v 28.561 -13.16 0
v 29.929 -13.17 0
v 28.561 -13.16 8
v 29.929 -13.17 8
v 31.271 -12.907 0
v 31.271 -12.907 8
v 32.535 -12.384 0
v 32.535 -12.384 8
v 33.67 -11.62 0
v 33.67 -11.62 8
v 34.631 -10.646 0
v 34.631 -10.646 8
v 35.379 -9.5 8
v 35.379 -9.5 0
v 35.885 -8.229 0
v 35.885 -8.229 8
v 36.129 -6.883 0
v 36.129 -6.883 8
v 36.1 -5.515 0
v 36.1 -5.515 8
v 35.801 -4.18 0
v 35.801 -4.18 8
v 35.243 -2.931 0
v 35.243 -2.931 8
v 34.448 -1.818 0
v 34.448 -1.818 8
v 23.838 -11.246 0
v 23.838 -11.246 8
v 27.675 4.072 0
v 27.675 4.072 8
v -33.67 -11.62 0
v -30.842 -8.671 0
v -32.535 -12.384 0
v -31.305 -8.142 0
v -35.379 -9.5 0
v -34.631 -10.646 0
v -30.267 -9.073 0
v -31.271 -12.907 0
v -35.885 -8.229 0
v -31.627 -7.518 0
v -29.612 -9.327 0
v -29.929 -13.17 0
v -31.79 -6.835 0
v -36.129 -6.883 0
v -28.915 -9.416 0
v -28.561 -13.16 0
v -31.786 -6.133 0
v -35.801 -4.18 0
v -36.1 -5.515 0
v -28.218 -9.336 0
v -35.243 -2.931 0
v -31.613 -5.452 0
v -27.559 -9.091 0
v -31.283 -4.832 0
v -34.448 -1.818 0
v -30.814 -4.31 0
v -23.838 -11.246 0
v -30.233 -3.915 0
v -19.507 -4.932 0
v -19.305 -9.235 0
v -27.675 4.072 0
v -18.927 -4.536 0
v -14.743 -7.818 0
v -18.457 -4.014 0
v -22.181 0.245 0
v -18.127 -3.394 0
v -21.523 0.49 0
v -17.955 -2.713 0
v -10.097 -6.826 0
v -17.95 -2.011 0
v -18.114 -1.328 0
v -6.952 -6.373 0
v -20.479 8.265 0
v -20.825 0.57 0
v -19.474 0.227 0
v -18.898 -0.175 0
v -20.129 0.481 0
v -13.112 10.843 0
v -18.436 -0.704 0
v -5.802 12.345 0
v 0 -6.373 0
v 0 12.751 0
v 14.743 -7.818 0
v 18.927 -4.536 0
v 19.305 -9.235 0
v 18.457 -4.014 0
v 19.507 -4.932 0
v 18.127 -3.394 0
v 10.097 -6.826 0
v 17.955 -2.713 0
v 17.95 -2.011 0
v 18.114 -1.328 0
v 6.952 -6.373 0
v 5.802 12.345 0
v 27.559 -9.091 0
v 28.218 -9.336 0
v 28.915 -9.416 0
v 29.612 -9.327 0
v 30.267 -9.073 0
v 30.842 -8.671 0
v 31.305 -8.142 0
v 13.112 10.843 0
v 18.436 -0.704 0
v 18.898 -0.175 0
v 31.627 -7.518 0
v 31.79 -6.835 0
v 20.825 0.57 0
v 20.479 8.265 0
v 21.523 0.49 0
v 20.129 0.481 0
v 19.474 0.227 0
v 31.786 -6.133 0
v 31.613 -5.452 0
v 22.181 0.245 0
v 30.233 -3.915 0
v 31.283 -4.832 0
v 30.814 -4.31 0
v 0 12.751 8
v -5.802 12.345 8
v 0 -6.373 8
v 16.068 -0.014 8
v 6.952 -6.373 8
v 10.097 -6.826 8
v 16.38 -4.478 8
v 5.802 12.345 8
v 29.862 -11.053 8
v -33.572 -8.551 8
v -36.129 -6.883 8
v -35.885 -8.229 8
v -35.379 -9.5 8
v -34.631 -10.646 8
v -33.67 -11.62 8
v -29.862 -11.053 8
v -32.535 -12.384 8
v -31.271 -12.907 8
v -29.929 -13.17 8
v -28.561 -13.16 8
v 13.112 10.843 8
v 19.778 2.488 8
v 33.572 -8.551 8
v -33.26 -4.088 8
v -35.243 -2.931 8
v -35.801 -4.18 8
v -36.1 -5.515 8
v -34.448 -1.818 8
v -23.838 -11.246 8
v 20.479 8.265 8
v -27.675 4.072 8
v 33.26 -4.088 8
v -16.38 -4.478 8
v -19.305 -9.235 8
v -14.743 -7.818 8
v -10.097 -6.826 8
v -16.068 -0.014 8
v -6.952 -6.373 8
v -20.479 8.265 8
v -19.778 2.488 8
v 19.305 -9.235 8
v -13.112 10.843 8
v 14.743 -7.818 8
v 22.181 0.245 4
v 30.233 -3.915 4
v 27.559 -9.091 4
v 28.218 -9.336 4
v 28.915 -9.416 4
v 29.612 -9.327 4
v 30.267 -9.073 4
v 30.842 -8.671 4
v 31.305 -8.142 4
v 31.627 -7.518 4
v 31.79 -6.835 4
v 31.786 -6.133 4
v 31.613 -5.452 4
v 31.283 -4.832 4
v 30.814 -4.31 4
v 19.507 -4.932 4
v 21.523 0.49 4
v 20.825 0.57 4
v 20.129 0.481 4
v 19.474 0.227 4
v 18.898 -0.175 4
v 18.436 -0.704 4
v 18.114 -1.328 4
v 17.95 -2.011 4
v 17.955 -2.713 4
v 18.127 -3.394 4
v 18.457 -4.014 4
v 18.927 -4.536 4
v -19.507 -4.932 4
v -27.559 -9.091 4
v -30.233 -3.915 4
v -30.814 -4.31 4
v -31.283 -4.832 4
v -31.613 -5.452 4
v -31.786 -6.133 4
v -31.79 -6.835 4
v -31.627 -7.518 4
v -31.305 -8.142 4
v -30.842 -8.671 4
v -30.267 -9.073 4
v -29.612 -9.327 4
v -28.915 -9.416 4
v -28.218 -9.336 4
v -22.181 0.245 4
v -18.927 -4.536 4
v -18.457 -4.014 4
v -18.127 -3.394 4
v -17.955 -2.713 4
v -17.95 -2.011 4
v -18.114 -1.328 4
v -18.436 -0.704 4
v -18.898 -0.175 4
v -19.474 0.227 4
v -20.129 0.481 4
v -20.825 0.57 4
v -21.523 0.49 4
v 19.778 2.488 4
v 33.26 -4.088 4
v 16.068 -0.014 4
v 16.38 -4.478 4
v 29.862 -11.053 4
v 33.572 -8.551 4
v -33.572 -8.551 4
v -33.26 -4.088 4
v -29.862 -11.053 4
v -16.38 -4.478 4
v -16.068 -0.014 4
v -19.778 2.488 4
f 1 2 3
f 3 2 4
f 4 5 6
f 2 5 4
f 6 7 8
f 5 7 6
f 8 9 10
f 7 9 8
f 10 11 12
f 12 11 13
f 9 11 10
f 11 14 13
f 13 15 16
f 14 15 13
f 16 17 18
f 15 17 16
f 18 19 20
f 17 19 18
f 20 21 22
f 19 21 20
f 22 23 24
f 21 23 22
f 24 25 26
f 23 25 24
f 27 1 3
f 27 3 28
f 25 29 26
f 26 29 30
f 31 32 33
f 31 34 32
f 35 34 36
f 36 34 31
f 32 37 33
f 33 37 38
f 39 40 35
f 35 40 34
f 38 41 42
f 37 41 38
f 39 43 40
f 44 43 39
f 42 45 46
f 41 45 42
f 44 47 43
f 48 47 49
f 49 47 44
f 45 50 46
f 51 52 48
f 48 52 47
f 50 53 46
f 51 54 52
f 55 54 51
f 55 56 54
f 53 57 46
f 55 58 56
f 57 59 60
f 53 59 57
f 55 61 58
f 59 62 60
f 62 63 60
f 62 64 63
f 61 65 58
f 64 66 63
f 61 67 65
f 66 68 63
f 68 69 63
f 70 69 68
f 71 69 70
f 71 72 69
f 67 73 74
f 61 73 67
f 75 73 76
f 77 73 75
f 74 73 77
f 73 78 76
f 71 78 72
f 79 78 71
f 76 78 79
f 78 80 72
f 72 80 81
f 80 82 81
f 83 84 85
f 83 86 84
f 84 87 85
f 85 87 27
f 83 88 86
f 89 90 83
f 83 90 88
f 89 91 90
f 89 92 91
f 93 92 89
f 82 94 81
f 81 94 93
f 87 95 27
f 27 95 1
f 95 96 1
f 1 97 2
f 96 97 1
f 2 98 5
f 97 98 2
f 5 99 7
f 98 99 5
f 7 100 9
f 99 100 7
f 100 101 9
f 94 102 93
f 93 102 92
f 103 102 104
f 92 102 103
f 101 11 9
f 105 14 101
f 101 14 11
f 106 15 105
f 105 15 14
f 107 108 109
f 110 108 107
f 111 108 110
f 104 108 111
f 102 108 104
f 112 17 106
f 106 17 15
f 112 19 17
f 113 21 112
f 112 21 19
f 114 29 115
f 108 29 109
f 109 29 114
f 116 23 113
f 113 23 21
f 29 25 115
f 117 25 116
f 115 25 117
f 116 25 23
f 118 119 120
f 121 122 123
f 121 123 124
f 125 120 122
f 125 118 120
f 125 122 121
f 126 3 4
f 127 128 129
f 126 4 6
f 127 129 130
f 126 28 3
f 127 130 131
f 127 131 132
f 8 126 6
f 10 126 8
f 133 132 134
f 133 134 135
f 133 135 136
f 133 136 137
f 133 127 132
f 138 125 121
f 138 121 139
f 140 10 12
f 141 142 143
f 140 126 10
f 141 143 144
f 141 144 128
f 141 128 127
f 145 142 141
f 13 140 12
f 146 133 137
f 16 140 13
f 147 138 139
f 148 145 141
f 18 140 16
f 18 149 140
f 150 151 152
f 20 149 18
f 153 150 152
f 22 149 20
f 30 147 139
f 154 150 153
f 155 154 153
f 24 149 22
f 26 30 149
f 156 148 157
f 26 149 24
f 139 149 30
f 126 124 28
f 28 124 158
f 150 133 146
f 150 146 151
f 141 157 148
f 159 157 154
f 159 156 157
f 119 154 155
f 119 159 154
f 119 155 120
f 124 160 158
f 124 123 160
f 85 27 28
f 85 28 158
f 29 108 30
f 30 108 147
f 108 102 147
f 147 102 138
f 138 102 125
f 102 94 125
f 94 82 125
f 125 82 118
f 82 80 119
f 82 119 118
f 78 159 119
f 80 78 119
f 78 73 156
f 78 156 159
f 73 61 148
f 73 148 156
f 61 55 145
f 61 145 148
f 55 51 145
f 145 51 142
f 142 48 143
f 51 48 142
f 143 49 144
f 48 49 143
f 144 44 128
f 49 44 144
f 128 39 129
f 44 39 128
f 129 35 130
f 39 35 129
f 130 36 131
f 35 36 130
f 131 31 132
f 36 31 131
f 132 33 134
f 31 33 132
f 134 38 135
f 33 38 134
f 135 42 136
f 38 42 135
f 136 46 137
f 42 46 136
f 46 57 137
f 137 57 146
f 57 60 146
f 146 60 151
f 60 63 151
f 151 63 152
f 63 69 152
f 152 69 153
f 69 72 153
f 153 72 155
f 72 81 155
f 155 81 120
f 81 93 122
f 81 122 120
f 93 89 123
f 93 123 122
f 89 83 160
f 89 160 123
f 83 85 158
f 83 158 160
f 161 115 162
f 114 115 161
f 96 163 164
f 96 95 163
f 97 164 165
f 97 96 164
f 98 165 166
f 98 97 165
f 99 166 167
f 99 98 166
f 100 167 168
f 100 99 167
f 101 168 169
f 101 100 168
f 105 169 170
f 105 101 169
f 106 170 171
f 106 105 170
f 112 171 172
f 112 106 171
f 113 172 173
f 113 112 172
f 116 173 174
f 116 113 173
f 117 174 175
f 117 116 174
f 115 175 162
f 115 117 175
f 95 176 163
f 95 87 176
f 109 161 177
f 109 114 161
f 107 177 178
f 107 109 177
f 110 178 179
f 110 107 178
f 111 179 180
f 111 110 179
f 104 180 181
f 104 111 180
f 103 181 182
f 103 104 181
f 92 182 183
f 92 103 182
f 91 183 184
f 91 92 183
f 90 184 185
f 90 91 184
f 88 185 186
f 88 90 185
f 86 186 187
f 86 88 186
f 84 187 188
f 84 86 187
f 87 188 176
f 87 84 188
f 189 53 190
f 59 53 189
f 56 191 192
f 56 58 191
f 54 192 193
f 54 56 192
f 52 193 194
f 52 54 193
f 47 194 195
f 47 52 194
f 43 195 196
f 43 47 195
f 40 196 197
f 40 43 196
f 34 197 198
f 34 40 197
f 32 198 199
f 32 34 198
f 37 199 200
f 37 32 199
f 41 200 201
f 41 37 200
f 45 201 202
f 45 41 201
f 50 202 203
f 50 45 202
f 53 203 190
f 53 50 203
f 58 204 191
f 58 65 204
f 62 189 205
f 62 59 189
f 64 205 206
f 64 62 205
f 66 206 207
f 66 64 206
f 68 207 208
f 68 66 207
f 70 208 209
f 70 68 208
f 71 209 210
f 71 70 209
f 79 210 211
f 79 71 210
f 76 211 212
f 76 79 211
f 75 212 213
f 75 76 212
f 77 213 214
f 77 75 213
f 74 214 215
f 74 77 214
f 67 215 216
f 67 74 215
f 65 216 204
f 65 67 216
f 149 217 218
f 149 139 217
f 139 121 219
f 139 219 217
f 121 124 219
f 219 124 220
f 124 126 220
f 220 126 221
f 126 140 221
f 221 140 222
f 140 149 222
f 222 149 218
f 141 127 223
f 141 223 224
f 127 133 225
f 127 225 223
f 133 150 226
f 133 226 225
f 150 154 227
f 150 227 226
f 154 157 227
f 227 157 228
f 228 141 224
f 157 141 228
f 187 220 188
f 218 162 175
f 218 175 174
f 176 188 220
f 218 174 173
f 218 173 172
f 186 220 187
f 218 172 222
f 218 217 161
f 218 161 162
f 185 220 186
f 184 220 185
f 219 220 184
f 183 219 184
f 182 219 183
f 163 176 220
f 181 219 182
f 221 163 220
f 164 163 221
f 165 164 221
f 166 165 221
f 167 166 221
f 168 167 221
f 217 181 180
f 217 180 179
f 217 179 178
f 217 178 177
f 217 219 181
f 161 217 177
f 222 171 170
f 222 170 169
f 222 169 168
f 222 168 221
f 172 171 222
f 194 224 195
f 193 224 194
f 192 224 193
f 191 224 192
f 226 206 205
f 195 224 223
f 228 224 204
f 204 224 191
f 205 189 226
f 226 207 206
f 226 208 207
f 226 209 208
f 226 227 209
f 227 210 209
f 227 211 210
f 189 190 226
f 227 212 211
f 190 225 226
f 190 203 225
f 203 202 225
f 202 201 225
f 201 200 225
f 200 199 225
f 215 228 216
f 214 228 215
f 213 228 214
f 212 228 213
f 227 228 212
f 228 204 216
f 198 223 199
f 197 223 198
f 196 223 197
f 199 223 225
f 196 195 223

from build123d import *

# Parameters (mm, degrees)
PAD_DEPTH    = 8
POCKET_DEPTH = 4


with BuildPart() as part:
    # Sketch001 → Pad (new body)
    with BuildSketch(Plane.XY):
        with BuildLine():
            ThreePointArc((-34.447941, -1.81802), (-35.378998, -9.500456), (-28.560543, -13.160422))
            Line((-28.560543, -13.160422), (-23.837885, -11.246234))
            Line((-23.837885, -11.246234), (-19.304688, -9.234627))
            Line((-19.304688, -9.234627), (-14.743155, -7.818003))
            Line((-14.743155, -7.818003), (-10.096628, -6.826365))
            Line((-10.096628, -6.826365), (-6.951722, -6.373045))
            Line((-6.951722, -6.373045), (0, -6.373045))
            Line((6.951722, -6.373045), (0, -6.373045))
            Line((10.096628, -6.826365), (6.951722, -6.373045))
            Line((14.743155, -7.818003), (10.096628, -6.826365))
            Line((19.304688, -9.234627), (14.743155, -7.818003))
            Line((23.837885, -11.246234), (19.304688, -9.234627))
            Line((28.560543, -13.160422), (23.837885, -11.246234))
            ThreePointArc((28.560543, -13.160422), (35.378998, -9.500456), (34.447941, -1.81802))
            Line((34.447941, -1.81802), (27.67498, 4.071902))
            Line((27.67498, 4.071902), (20.478533, 8.265109))
            Line((20.478533, 8.265109), (13.112085, 10.843365))
            Line((13.112085, 10.843365), (5.802306, 12.344987))
            Line((5.802306, 12.344987), (0, 12.751387))
            Line((-5.802306, 12.344987), (0, 12.751387))
            Line((-13.112085, 10.843365), (-5.802306, 12.344987))
            Line((-20.478533, 8.265109), (-13.112085, 10.843365))
            Line((-27.67498, 4.071902), (-20.478533, 8.265109))
            Line((-34.447941, -1.81802), (-27.67498, 4.071902))
        make_face()
        with BuildLine():
            ThreePointArc((-19.507144, -4.931658), (-18.255876, -1.006404), (-22.181131, 0.244864))
            Line((-22.181131, 0.244864), (-30.233268, -3.914552))
            ThreePointArc((-30.233268, -3.914552), (-31.484536, -7.839806), (-27.559282, -9.091074))
            Line((-19.507144, -4.931658), (-27.559282, -9.091074))
        make_face(mode=Mode.SUBTRACT)
        with BuildLine():
            ThreePointArc((22.181131, 0.244864), (18.255876, -1.006404), (19.507144, -4.931658))
            Line((19.507144, -4.931658), (27.559282, -9.091074))
            ThreePointArc((27.559282, -9.091074), (31.484536, -7.839806), (30.233268, -3.914552))
            Line((22.181131, 0.244864), (30.233268, -3.914552))
        make_face(mode=Mode.SUBTRACT)
    extrude(amount=PAD_DEPTH)

    # Sketch003 → Pocket (cut)
    with BuildSketch(Plane.XY.offset(8)):
        Polygon((33.25967, -4.087808), (19.777759, 2.487759), (16.06826, -0.01433), (16.380383, -4.477895), (29.862294, -11.053462), (33.571793, -8.551373), align=None)
        Polygon((-33.25967, -4.087808), (-19.777759, 2.487759), (-16.06826, -0.01433), (-16.380383, -4.477895), (-29.862294, -11.053462), (-33.571793, -8.551373), align=None)
    extrude(amount=-POCKET_DEPTH, mode=Mode.SUBTRACT)


solid = part.part
